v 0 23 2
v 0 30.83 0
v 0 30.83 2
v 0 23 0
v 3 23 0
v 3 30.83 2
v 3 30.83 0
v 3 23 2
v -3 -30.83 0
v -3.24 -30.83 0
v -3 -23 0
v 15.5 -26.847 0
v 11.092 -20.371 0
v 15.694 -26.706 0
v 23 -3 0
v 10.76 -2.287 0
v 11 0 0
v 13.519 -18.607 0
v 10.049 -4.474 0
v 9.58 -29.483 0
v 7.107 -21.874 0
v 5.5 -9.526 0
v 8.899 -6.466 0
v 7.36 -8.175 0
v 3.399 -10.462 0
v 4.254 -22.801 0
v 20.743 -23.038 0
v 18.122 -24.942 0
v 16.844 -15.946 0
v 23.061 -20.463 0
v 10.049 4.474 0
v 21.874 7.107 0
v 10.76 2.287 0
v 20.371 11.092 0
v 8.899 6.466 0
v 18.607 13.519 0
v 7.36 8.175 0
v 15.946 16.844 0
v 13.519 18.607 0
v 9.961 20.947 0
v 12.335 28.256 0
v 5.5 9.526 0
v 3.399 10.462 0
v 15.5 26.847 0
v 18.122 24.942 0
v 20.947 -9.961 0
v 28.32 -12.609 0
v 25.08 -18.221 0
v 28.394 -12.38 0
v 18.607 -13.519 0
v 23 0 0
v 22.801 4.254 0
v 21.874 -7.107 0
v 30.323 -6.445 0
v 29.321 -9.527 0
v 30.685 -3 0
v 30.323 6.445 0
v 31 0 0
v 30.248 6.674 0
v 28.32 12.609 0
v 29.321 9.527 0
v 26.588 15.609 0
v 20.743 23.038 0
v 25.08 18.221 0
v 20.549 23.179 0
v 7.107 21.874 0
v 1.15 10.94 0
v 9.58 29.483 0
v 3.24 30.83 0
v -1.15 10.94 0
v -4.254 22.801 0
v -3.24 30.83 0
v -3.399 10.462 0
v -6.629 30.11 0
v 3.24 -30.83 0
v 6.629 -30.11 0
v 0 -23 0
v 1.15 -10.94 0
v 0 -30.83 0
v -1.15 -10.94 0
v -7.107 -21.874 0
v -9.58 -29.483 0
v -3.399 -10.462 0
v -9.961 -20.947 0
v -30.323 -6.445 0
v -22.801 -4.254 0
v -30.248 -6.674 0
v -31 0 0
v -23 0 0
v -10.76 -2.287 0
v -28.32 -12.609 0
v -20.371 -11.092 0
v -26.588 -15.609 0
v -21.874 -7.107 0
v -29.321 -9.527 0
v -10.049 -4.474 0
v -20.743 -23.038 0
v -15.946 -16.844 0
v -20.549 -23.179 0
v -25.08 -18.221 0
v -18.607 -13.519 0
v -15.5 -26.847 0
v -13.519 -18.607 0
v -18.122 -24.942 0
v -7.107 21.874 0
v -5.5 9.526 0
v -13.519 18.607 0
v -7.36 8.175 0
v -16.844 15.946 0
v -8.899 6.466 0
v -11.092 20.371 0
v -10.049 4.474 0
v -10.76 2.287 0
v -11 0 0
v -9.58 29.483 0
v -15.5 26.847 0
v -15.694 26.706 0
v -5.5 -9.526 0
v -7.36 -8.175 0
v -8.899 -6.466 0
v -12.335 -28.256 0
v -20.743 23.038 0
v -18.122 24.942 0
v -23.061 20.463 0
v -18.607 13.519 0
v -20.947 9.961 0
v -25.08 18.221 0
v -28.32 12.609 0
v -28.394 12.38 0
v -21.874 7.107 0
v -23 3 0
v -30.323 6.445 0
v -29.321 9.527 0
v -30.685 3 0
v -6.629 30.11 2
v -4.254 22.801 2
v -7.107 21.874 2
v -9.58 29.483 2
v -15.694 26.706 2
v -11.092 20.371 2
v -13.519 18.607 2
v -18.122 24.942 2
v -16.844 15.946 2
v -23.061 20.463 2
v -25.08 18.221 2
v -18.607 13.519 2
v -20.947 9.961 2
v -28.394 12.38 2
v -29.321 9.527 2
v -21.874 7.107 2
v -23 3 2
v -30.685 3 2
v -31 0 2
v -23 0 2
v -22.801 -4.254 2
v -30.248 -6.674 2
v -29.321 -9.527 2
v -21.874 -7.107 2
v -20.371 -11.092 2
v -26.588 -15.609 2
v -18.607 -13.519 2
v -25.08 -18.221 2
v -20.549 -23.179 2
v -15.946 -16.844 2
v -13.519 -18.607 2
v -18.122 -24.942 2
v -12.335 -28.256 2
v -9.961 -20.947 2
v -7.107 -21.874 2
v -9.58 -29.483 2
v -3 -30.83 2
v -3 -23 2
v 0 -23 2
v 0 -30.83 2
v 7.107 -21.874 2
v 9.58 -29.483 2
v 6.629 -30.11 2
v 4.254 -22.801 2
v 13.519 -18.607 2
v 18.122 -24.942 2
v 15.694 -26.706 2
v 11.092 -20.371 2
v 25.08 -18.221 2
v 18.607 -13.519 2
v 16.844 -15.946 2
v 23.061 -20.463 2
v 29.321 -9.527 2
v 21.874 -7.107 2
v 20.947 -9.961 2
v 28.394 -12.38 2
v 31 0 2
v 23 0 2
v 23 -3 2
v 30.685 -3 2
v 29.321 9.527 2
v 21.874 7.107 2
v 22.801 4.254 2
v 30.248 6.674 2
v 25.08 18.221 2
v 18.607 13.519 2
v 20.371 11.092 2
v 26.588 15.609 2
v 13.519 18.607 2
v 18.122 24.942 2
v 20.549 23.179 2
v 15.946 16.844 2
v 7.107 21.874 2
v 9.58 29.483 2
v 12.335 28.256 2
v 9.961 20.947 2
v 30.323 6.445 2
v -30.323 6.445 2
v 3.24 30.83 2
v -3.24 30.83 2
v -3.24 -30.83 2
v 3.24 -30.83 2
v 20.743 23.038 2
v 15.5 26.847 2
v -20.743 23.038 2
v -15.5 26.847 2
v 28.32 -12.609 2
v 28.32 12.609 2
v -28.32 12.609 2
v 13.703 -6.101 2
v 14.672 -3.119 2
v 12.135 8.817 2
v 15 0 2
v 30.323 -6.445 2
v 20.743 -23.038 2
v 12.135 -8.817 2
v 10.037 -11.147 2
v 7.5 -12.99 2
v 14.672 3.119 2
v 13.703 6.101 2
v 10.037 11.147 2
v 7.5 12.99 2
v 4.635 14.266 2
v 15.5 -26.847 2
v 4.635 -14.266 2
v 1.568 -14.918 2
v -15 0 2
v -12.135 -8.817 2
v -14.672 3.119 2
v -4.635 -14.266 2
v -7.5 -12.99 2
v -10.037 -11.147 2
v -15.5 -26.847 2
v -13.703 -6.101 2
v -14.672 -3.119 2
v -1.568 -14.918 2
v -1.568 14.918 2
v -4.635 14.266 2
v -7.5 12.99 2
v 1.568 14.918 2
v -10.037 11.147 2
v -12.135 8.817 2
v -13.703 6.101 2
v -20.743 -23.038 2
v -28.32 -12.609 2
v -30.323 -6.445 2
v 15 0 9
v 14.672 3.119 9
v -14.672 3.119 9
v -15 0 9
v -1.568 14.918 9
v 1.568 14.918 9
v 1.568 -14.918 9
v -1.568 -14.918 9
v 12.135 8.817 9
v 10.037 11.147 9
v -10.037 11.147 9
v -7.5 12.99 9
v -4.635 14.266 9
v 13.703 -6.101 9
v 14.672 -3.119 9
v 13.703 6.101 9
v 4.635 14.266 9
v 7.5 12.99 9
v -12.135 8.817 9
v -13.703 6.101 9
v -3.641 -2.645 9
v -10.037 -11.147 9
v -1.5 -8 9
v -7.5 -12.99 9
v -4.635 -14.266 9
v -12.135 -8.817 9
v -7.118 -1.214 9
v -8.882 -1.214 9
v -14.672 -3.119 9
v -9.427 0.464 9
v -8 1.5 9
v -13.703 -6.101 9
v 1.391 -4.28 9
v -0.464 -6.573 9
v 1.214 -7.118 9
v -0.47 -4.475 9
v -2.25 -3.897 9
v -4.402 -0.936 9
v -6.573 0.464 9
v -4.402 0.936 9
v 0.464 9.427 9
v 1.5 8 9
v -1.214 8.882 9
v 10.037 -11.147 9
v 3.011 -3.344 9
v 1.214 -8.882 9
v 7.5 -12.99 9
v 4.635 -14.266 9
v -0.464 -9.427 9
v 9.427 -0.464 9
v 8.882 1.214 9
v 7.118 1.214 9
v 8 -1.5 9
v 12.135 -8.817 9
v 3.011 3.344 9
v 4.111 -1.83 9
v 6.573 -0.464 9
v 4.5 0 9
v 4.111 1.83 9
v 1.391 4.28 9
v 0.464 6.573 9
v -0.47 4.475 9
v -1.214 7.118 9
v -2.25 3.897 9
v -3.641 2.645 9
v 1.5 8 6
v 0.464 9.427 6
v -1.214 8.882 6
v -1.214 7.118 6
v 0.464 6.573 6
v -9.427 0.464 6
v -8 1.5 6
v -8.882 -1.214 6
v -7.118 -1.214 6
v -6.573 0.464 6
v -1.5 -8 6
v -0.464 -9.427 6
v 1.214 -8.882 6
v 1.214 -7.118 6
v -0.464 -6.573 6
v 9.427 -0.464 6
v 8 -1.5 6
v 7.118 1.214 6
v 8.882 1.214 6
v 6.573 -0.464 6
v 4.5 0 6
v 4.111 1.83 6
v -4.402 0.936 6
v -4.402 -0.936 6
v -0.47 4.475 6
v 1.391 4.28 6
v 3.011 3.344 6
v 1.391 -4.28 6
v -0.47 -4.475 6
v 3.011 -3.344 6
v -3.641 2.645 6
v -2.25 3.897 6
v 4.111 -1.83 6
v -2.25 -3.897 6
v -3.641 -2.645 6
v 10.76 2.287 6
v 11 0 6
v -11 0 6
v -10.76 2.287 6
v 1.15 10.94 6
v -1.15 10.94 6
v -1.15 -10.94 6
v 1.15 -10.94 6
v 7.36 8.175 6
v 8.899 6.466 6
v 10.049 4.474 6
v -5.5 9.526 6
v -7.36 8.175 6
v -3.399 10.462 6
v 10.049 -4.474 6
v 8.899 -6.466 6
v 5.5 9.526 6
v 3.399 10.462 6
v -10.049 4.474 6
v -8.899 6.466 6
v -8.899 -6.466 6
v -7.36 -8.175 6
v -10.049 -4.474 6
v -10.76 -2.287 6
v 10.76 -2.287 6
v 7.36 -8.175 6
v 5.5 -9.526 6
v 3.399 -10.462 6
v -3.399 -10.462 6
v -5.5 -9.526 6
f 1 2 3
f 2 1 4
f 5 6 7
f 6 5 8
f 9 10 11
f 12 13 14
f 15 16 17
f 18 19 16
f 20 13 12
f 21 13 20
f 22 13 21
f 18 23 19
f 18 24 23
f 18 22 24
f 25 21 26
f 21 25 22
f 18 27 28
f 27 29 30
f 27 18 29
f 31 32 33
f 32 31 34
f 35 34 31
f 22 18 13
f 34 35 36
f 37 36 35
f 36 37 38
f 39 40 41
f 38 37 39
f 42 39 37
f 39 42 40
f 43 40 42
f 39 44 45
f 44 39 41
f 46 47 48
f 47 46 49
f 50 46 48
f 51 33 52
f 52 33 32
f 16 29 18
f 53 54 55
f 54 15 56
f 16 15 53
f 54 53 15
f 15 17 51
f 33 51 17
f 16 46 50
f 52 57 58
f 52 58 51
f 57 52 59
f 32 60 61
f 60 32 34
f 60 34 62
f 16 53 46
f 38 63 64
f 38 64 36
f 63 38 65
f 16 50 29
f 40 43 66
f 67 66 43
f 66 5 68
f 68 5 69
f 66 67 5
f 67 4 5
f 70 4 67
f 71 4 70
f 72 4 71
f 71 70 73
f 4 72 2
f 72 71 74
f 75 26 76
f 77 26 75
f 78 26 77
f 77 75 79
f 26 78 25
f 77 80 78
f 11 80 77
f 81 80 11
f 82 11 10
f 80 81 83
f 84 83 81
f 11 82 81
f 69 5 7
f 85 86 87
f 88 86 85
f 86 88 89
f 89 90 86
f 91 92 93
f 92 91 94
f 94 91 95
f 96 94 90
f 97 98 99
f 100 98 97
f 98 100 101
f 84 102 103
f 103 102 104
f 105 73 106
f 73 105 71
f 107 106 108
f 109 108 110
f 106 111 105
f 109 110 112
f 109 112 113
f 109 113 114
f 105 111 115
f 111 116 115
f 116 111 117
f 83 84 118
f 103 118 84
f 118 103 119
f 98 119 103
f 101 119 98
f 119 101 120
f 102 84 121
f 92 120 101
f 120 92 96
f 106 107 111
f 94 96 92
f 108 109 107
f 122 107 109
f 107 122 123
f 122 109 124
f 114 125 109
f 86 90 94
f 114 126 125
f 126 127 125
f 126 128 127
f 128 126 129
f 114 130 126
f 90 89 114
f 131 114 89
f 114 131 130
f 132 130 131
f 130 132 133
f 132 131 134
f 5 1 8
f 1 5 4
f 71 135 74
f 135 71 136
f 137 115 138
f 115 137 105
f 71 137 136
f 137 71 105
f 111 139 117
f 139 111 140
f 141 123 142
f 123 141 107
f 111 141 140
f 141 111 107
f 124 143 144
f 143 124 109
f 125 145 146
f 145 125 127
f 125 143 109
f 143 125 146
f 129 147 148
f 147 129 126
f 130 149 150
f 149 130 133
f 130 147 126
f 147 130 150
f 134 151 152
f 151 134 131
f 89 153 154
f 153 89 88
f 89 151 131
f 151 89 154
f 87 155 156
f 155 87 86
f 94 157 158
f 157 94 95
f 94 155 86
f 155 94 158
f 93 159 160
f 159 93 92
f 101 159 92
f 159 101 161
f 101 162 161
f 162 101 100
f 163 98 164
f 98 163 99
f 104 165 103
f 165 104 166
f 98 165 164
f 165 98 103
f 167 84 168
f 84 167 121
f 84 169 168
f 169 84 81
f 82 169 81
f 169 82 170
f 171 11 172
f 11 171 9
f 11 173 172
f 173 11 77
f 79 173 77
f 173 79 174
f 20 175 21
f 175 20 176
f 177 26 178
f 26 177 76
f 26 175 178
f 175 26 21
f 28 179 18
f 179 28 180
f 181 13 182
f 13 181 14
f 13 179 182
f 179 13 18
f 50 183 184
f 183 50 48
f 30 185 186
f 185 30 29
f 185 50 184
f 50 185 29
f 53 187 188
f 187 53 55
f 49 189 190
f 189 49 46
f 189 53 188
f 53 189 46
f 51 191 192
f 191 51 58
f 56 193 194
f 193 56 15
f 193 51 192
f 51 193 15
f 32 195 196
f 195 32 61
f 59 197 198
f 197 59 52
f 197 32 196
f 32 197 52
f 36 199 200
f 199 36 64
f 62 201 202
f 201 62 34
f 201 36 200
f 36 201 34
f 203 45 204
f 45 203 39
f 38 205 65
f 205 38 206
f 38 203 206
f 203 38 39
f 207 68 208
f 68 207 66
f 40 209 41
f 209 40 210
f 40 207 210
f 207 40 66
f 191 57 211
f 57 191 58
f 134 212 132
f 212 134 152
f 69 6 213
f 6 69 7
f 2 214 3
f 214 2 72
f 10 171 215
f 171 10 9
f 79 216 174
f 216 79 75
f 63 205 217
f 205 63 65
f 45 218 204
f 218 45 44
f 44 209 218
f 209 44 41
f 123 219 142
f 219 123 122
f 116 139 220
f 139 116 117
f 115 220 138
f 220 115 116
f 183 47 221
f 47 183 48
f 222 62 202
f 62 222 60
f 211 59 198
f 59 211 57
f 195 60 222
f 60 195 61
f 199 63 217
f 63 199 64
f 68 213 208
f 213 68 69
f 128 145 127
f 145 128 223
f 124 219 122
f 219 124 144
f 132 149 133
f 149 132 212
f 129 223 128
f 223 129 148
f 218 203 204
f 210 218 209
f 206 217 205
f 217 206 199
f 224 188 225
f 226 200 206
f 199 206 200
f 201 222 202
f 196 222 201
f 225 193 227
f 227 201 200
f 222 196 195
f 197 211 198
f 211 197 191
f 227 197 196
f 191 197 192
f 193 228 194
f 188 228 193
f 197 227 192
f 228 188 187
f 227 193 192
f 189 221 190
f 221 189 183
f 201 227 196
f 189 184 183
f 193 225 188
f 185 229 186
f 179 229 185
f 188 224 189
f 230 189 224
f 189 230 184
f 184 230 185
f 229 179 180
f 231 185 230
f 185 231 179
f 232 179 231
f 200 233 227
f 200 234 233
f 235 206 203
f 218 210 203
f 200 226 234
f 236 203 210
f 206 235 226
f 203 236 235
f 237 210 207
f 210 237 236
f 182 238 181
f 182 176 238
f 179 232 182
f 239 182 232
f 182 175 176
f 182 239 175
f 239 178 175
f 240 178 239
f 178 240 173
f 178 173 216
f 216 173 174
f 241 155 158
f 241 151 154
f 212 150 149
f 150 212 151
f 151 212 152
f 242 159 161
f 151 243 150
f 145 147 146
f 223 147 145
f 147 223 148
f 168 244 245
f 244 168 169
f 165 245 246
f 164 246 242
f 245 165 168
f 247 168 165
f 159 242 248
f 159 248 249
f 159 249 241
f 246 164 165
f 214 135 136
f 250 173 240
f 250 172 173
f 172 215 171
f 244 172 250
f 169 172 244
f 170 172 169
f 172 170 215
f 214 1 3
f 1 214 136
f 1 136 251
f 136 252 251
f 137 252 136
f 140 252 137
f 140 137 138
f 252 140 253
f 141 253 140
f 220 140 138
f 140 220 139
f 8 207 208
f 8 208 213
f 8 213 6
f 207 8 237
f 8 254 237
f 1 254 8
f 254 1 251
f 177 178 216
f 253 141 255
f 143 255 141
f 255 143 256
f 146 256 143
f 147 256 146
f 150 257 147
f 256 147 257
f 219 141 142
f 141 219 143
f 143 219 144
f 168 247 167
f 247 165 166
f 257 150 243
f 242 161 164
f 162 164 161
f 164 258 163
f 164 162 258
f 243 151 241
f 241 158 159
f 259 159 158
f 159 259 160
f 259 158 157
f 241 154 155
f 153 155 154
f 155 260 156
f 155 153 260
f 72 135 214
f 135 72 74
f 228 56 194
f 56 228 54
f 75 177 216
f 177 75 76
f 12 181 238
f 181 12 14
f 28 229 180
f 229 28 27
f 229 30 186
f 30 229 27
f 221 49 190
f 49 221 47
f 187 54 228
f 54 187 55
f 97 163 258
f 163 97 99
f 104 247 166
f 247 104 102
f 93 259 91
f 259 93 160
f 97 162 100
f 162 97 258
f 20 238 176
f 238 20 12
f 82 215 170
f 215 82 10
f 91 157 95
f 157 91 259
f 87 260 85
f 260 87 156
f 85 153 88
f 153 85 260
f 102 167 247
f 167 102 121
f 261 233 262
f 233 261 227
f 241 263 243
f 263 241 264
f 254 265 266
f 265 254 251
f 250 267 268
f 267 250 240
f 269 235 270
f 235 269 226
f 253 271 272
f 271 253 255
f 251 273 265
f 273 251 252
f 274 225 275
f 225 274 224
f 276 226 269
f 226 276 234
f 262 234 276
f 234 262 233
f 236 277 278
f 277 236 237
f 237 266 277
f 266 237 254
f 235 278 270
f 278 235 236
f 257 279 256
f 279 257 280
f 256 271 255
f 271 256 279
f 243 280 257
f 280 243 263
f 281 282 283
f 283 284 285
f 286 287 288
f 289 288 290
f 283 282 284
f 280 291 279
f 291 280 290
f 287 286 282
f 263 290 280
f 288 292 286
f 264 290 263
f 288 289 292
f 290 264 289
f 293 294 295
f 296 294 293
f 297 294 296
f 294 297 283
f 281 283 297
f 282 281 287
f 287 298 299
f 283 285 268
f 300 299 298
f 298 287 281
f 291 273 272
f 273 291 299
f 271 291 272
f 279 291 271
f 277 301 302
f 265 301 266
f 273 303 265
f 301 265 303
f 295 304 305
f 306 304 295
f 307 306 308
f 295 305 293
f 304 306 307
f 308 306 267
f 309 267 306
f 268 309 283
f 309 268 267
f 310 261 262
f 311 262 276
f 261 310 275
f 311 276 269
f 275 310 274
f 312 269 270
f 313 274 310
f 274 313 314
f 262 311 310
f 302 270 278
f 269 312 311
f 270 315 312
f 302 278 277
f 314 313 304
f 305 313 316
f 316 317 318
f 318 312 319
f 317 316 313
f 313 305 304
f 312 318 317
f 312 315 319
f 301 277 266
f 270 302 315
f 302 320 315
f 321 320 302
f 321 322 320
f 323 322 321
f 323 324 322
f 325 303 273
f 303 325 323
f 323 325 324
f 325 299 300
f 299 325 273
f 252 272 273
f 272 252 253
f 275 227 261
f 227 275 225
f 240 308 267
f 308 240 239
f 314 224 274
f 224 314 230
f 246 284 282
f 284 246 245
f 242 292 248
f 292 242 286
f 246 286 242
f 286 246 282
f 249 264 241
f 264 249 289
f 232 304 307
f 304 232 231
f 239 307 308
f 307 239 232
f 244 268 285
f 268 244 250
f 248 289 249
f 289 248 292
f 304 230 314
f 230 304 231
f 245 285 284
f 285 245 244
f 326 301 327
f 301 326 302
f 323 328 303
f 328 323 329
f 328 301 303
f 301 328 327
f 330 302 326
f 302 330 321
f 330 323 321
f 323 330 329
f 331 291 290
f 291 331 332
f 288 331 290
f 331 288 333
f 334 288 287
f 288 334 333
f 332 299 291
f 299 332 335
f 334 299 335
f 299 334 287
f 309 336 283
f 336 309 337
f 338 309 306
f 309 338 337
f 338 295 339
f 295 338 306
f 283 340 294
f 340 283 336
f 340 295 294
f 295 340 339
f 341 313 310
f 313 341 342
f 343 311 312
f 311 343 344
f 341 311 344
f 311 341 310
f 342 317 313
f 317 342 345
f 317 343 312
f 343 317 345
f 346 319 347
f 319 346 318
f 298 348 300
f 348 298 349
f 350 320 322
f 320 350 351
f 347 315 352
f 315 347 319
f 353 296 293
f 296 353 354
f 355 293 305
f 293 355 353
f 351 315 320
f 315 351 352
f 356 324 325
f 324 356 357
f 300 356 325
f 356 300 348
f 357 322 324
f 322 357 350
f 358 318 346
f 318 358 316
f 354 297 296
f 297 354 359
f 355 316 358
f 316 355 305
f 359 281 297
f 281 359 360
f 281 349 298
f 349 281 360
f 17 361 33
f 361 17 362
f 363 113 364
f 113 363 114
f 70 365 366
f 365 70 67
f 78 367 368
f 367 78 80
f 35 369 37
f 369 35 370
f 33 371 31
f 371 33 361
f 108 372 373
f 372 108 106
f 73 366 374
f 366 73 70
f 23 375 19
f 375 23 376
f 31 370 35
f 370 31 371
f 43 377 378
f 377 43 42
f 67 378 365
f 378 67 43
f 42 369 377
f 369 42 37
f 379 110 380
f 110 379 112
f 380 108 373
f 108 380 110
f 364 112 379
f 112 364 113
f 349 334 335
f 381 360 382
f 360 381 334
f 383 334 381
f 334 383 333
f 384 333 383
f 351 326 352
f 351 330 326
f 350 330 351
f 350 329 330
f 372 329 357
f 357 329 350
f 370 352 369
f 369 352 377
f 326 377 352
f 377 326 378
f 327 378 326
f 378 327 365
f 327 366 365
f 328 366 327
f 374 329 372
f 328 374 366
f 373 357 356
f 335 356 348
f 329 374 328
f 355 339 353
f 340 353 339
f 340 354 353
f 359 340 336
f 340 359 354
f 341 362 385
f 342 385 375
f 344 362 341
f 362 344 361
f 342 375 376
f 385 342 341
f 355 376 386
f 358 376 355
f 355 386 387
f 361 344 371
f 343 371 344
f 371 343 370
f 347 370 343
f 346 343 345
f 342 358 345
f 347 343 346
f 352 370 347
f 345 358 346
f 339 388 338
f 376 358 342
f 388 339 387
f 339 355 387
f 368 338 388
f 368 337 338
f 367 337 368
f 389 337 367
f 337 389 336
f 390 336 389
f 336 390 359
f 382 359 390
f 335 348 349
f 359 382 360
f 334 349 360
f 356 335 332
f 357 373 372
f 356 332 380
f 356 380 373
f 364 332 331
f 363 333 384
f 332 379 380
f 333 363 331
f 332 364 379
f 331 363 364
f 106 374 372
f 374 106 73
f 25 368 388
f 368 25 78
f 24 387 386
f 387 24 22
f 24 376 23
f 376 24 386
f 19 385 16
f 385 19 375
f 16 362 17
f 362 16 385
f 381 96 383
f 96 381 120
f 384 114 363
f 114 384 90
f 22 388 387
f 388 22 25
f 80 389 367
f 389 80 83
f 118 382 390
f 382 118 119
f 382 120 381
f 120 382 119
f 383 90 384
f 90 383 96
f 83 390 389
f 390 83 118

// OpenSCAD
module principal () {

 raioExterno = 31;
 raioCilindroInterno = 15;  
 difference() {
  cylinder(2,raioExterno,raioExterno);
  // faz uma cavidade a cada 
  for ( a = [0:18:359])   
  rotate([0,0,a]) 
  translate([0,23,0]){
   cube([3,8,3]);
  }

 }
 cylinder(9,raioCilindroInterno,raioCilindroInterno);
    
}


module furos () {
   profundidade = 6; 
   for ( a = [0:90:340])   
    rotate([0,0,a]) { 
    //translate([0,19,0]){
    // cylinder(profundidade+4,3,3);
    //}
    translate([0,8,0]){
     cylinder(profundidade+4,1.5,1.5);
    }
   }   
  
  {
   cylinder(profundidade+4,4.5,4.5); 
   cylinder(profundidade,11,11); 
  } 
}



    difference() { 
principal(); 
furos();
    }
   
    
   /* 
    difference() { 
        cylinder(9,23,23);
        
        translate([0,0,-1]){  
            cylinder(7,31,31);
        }
    }

*/
